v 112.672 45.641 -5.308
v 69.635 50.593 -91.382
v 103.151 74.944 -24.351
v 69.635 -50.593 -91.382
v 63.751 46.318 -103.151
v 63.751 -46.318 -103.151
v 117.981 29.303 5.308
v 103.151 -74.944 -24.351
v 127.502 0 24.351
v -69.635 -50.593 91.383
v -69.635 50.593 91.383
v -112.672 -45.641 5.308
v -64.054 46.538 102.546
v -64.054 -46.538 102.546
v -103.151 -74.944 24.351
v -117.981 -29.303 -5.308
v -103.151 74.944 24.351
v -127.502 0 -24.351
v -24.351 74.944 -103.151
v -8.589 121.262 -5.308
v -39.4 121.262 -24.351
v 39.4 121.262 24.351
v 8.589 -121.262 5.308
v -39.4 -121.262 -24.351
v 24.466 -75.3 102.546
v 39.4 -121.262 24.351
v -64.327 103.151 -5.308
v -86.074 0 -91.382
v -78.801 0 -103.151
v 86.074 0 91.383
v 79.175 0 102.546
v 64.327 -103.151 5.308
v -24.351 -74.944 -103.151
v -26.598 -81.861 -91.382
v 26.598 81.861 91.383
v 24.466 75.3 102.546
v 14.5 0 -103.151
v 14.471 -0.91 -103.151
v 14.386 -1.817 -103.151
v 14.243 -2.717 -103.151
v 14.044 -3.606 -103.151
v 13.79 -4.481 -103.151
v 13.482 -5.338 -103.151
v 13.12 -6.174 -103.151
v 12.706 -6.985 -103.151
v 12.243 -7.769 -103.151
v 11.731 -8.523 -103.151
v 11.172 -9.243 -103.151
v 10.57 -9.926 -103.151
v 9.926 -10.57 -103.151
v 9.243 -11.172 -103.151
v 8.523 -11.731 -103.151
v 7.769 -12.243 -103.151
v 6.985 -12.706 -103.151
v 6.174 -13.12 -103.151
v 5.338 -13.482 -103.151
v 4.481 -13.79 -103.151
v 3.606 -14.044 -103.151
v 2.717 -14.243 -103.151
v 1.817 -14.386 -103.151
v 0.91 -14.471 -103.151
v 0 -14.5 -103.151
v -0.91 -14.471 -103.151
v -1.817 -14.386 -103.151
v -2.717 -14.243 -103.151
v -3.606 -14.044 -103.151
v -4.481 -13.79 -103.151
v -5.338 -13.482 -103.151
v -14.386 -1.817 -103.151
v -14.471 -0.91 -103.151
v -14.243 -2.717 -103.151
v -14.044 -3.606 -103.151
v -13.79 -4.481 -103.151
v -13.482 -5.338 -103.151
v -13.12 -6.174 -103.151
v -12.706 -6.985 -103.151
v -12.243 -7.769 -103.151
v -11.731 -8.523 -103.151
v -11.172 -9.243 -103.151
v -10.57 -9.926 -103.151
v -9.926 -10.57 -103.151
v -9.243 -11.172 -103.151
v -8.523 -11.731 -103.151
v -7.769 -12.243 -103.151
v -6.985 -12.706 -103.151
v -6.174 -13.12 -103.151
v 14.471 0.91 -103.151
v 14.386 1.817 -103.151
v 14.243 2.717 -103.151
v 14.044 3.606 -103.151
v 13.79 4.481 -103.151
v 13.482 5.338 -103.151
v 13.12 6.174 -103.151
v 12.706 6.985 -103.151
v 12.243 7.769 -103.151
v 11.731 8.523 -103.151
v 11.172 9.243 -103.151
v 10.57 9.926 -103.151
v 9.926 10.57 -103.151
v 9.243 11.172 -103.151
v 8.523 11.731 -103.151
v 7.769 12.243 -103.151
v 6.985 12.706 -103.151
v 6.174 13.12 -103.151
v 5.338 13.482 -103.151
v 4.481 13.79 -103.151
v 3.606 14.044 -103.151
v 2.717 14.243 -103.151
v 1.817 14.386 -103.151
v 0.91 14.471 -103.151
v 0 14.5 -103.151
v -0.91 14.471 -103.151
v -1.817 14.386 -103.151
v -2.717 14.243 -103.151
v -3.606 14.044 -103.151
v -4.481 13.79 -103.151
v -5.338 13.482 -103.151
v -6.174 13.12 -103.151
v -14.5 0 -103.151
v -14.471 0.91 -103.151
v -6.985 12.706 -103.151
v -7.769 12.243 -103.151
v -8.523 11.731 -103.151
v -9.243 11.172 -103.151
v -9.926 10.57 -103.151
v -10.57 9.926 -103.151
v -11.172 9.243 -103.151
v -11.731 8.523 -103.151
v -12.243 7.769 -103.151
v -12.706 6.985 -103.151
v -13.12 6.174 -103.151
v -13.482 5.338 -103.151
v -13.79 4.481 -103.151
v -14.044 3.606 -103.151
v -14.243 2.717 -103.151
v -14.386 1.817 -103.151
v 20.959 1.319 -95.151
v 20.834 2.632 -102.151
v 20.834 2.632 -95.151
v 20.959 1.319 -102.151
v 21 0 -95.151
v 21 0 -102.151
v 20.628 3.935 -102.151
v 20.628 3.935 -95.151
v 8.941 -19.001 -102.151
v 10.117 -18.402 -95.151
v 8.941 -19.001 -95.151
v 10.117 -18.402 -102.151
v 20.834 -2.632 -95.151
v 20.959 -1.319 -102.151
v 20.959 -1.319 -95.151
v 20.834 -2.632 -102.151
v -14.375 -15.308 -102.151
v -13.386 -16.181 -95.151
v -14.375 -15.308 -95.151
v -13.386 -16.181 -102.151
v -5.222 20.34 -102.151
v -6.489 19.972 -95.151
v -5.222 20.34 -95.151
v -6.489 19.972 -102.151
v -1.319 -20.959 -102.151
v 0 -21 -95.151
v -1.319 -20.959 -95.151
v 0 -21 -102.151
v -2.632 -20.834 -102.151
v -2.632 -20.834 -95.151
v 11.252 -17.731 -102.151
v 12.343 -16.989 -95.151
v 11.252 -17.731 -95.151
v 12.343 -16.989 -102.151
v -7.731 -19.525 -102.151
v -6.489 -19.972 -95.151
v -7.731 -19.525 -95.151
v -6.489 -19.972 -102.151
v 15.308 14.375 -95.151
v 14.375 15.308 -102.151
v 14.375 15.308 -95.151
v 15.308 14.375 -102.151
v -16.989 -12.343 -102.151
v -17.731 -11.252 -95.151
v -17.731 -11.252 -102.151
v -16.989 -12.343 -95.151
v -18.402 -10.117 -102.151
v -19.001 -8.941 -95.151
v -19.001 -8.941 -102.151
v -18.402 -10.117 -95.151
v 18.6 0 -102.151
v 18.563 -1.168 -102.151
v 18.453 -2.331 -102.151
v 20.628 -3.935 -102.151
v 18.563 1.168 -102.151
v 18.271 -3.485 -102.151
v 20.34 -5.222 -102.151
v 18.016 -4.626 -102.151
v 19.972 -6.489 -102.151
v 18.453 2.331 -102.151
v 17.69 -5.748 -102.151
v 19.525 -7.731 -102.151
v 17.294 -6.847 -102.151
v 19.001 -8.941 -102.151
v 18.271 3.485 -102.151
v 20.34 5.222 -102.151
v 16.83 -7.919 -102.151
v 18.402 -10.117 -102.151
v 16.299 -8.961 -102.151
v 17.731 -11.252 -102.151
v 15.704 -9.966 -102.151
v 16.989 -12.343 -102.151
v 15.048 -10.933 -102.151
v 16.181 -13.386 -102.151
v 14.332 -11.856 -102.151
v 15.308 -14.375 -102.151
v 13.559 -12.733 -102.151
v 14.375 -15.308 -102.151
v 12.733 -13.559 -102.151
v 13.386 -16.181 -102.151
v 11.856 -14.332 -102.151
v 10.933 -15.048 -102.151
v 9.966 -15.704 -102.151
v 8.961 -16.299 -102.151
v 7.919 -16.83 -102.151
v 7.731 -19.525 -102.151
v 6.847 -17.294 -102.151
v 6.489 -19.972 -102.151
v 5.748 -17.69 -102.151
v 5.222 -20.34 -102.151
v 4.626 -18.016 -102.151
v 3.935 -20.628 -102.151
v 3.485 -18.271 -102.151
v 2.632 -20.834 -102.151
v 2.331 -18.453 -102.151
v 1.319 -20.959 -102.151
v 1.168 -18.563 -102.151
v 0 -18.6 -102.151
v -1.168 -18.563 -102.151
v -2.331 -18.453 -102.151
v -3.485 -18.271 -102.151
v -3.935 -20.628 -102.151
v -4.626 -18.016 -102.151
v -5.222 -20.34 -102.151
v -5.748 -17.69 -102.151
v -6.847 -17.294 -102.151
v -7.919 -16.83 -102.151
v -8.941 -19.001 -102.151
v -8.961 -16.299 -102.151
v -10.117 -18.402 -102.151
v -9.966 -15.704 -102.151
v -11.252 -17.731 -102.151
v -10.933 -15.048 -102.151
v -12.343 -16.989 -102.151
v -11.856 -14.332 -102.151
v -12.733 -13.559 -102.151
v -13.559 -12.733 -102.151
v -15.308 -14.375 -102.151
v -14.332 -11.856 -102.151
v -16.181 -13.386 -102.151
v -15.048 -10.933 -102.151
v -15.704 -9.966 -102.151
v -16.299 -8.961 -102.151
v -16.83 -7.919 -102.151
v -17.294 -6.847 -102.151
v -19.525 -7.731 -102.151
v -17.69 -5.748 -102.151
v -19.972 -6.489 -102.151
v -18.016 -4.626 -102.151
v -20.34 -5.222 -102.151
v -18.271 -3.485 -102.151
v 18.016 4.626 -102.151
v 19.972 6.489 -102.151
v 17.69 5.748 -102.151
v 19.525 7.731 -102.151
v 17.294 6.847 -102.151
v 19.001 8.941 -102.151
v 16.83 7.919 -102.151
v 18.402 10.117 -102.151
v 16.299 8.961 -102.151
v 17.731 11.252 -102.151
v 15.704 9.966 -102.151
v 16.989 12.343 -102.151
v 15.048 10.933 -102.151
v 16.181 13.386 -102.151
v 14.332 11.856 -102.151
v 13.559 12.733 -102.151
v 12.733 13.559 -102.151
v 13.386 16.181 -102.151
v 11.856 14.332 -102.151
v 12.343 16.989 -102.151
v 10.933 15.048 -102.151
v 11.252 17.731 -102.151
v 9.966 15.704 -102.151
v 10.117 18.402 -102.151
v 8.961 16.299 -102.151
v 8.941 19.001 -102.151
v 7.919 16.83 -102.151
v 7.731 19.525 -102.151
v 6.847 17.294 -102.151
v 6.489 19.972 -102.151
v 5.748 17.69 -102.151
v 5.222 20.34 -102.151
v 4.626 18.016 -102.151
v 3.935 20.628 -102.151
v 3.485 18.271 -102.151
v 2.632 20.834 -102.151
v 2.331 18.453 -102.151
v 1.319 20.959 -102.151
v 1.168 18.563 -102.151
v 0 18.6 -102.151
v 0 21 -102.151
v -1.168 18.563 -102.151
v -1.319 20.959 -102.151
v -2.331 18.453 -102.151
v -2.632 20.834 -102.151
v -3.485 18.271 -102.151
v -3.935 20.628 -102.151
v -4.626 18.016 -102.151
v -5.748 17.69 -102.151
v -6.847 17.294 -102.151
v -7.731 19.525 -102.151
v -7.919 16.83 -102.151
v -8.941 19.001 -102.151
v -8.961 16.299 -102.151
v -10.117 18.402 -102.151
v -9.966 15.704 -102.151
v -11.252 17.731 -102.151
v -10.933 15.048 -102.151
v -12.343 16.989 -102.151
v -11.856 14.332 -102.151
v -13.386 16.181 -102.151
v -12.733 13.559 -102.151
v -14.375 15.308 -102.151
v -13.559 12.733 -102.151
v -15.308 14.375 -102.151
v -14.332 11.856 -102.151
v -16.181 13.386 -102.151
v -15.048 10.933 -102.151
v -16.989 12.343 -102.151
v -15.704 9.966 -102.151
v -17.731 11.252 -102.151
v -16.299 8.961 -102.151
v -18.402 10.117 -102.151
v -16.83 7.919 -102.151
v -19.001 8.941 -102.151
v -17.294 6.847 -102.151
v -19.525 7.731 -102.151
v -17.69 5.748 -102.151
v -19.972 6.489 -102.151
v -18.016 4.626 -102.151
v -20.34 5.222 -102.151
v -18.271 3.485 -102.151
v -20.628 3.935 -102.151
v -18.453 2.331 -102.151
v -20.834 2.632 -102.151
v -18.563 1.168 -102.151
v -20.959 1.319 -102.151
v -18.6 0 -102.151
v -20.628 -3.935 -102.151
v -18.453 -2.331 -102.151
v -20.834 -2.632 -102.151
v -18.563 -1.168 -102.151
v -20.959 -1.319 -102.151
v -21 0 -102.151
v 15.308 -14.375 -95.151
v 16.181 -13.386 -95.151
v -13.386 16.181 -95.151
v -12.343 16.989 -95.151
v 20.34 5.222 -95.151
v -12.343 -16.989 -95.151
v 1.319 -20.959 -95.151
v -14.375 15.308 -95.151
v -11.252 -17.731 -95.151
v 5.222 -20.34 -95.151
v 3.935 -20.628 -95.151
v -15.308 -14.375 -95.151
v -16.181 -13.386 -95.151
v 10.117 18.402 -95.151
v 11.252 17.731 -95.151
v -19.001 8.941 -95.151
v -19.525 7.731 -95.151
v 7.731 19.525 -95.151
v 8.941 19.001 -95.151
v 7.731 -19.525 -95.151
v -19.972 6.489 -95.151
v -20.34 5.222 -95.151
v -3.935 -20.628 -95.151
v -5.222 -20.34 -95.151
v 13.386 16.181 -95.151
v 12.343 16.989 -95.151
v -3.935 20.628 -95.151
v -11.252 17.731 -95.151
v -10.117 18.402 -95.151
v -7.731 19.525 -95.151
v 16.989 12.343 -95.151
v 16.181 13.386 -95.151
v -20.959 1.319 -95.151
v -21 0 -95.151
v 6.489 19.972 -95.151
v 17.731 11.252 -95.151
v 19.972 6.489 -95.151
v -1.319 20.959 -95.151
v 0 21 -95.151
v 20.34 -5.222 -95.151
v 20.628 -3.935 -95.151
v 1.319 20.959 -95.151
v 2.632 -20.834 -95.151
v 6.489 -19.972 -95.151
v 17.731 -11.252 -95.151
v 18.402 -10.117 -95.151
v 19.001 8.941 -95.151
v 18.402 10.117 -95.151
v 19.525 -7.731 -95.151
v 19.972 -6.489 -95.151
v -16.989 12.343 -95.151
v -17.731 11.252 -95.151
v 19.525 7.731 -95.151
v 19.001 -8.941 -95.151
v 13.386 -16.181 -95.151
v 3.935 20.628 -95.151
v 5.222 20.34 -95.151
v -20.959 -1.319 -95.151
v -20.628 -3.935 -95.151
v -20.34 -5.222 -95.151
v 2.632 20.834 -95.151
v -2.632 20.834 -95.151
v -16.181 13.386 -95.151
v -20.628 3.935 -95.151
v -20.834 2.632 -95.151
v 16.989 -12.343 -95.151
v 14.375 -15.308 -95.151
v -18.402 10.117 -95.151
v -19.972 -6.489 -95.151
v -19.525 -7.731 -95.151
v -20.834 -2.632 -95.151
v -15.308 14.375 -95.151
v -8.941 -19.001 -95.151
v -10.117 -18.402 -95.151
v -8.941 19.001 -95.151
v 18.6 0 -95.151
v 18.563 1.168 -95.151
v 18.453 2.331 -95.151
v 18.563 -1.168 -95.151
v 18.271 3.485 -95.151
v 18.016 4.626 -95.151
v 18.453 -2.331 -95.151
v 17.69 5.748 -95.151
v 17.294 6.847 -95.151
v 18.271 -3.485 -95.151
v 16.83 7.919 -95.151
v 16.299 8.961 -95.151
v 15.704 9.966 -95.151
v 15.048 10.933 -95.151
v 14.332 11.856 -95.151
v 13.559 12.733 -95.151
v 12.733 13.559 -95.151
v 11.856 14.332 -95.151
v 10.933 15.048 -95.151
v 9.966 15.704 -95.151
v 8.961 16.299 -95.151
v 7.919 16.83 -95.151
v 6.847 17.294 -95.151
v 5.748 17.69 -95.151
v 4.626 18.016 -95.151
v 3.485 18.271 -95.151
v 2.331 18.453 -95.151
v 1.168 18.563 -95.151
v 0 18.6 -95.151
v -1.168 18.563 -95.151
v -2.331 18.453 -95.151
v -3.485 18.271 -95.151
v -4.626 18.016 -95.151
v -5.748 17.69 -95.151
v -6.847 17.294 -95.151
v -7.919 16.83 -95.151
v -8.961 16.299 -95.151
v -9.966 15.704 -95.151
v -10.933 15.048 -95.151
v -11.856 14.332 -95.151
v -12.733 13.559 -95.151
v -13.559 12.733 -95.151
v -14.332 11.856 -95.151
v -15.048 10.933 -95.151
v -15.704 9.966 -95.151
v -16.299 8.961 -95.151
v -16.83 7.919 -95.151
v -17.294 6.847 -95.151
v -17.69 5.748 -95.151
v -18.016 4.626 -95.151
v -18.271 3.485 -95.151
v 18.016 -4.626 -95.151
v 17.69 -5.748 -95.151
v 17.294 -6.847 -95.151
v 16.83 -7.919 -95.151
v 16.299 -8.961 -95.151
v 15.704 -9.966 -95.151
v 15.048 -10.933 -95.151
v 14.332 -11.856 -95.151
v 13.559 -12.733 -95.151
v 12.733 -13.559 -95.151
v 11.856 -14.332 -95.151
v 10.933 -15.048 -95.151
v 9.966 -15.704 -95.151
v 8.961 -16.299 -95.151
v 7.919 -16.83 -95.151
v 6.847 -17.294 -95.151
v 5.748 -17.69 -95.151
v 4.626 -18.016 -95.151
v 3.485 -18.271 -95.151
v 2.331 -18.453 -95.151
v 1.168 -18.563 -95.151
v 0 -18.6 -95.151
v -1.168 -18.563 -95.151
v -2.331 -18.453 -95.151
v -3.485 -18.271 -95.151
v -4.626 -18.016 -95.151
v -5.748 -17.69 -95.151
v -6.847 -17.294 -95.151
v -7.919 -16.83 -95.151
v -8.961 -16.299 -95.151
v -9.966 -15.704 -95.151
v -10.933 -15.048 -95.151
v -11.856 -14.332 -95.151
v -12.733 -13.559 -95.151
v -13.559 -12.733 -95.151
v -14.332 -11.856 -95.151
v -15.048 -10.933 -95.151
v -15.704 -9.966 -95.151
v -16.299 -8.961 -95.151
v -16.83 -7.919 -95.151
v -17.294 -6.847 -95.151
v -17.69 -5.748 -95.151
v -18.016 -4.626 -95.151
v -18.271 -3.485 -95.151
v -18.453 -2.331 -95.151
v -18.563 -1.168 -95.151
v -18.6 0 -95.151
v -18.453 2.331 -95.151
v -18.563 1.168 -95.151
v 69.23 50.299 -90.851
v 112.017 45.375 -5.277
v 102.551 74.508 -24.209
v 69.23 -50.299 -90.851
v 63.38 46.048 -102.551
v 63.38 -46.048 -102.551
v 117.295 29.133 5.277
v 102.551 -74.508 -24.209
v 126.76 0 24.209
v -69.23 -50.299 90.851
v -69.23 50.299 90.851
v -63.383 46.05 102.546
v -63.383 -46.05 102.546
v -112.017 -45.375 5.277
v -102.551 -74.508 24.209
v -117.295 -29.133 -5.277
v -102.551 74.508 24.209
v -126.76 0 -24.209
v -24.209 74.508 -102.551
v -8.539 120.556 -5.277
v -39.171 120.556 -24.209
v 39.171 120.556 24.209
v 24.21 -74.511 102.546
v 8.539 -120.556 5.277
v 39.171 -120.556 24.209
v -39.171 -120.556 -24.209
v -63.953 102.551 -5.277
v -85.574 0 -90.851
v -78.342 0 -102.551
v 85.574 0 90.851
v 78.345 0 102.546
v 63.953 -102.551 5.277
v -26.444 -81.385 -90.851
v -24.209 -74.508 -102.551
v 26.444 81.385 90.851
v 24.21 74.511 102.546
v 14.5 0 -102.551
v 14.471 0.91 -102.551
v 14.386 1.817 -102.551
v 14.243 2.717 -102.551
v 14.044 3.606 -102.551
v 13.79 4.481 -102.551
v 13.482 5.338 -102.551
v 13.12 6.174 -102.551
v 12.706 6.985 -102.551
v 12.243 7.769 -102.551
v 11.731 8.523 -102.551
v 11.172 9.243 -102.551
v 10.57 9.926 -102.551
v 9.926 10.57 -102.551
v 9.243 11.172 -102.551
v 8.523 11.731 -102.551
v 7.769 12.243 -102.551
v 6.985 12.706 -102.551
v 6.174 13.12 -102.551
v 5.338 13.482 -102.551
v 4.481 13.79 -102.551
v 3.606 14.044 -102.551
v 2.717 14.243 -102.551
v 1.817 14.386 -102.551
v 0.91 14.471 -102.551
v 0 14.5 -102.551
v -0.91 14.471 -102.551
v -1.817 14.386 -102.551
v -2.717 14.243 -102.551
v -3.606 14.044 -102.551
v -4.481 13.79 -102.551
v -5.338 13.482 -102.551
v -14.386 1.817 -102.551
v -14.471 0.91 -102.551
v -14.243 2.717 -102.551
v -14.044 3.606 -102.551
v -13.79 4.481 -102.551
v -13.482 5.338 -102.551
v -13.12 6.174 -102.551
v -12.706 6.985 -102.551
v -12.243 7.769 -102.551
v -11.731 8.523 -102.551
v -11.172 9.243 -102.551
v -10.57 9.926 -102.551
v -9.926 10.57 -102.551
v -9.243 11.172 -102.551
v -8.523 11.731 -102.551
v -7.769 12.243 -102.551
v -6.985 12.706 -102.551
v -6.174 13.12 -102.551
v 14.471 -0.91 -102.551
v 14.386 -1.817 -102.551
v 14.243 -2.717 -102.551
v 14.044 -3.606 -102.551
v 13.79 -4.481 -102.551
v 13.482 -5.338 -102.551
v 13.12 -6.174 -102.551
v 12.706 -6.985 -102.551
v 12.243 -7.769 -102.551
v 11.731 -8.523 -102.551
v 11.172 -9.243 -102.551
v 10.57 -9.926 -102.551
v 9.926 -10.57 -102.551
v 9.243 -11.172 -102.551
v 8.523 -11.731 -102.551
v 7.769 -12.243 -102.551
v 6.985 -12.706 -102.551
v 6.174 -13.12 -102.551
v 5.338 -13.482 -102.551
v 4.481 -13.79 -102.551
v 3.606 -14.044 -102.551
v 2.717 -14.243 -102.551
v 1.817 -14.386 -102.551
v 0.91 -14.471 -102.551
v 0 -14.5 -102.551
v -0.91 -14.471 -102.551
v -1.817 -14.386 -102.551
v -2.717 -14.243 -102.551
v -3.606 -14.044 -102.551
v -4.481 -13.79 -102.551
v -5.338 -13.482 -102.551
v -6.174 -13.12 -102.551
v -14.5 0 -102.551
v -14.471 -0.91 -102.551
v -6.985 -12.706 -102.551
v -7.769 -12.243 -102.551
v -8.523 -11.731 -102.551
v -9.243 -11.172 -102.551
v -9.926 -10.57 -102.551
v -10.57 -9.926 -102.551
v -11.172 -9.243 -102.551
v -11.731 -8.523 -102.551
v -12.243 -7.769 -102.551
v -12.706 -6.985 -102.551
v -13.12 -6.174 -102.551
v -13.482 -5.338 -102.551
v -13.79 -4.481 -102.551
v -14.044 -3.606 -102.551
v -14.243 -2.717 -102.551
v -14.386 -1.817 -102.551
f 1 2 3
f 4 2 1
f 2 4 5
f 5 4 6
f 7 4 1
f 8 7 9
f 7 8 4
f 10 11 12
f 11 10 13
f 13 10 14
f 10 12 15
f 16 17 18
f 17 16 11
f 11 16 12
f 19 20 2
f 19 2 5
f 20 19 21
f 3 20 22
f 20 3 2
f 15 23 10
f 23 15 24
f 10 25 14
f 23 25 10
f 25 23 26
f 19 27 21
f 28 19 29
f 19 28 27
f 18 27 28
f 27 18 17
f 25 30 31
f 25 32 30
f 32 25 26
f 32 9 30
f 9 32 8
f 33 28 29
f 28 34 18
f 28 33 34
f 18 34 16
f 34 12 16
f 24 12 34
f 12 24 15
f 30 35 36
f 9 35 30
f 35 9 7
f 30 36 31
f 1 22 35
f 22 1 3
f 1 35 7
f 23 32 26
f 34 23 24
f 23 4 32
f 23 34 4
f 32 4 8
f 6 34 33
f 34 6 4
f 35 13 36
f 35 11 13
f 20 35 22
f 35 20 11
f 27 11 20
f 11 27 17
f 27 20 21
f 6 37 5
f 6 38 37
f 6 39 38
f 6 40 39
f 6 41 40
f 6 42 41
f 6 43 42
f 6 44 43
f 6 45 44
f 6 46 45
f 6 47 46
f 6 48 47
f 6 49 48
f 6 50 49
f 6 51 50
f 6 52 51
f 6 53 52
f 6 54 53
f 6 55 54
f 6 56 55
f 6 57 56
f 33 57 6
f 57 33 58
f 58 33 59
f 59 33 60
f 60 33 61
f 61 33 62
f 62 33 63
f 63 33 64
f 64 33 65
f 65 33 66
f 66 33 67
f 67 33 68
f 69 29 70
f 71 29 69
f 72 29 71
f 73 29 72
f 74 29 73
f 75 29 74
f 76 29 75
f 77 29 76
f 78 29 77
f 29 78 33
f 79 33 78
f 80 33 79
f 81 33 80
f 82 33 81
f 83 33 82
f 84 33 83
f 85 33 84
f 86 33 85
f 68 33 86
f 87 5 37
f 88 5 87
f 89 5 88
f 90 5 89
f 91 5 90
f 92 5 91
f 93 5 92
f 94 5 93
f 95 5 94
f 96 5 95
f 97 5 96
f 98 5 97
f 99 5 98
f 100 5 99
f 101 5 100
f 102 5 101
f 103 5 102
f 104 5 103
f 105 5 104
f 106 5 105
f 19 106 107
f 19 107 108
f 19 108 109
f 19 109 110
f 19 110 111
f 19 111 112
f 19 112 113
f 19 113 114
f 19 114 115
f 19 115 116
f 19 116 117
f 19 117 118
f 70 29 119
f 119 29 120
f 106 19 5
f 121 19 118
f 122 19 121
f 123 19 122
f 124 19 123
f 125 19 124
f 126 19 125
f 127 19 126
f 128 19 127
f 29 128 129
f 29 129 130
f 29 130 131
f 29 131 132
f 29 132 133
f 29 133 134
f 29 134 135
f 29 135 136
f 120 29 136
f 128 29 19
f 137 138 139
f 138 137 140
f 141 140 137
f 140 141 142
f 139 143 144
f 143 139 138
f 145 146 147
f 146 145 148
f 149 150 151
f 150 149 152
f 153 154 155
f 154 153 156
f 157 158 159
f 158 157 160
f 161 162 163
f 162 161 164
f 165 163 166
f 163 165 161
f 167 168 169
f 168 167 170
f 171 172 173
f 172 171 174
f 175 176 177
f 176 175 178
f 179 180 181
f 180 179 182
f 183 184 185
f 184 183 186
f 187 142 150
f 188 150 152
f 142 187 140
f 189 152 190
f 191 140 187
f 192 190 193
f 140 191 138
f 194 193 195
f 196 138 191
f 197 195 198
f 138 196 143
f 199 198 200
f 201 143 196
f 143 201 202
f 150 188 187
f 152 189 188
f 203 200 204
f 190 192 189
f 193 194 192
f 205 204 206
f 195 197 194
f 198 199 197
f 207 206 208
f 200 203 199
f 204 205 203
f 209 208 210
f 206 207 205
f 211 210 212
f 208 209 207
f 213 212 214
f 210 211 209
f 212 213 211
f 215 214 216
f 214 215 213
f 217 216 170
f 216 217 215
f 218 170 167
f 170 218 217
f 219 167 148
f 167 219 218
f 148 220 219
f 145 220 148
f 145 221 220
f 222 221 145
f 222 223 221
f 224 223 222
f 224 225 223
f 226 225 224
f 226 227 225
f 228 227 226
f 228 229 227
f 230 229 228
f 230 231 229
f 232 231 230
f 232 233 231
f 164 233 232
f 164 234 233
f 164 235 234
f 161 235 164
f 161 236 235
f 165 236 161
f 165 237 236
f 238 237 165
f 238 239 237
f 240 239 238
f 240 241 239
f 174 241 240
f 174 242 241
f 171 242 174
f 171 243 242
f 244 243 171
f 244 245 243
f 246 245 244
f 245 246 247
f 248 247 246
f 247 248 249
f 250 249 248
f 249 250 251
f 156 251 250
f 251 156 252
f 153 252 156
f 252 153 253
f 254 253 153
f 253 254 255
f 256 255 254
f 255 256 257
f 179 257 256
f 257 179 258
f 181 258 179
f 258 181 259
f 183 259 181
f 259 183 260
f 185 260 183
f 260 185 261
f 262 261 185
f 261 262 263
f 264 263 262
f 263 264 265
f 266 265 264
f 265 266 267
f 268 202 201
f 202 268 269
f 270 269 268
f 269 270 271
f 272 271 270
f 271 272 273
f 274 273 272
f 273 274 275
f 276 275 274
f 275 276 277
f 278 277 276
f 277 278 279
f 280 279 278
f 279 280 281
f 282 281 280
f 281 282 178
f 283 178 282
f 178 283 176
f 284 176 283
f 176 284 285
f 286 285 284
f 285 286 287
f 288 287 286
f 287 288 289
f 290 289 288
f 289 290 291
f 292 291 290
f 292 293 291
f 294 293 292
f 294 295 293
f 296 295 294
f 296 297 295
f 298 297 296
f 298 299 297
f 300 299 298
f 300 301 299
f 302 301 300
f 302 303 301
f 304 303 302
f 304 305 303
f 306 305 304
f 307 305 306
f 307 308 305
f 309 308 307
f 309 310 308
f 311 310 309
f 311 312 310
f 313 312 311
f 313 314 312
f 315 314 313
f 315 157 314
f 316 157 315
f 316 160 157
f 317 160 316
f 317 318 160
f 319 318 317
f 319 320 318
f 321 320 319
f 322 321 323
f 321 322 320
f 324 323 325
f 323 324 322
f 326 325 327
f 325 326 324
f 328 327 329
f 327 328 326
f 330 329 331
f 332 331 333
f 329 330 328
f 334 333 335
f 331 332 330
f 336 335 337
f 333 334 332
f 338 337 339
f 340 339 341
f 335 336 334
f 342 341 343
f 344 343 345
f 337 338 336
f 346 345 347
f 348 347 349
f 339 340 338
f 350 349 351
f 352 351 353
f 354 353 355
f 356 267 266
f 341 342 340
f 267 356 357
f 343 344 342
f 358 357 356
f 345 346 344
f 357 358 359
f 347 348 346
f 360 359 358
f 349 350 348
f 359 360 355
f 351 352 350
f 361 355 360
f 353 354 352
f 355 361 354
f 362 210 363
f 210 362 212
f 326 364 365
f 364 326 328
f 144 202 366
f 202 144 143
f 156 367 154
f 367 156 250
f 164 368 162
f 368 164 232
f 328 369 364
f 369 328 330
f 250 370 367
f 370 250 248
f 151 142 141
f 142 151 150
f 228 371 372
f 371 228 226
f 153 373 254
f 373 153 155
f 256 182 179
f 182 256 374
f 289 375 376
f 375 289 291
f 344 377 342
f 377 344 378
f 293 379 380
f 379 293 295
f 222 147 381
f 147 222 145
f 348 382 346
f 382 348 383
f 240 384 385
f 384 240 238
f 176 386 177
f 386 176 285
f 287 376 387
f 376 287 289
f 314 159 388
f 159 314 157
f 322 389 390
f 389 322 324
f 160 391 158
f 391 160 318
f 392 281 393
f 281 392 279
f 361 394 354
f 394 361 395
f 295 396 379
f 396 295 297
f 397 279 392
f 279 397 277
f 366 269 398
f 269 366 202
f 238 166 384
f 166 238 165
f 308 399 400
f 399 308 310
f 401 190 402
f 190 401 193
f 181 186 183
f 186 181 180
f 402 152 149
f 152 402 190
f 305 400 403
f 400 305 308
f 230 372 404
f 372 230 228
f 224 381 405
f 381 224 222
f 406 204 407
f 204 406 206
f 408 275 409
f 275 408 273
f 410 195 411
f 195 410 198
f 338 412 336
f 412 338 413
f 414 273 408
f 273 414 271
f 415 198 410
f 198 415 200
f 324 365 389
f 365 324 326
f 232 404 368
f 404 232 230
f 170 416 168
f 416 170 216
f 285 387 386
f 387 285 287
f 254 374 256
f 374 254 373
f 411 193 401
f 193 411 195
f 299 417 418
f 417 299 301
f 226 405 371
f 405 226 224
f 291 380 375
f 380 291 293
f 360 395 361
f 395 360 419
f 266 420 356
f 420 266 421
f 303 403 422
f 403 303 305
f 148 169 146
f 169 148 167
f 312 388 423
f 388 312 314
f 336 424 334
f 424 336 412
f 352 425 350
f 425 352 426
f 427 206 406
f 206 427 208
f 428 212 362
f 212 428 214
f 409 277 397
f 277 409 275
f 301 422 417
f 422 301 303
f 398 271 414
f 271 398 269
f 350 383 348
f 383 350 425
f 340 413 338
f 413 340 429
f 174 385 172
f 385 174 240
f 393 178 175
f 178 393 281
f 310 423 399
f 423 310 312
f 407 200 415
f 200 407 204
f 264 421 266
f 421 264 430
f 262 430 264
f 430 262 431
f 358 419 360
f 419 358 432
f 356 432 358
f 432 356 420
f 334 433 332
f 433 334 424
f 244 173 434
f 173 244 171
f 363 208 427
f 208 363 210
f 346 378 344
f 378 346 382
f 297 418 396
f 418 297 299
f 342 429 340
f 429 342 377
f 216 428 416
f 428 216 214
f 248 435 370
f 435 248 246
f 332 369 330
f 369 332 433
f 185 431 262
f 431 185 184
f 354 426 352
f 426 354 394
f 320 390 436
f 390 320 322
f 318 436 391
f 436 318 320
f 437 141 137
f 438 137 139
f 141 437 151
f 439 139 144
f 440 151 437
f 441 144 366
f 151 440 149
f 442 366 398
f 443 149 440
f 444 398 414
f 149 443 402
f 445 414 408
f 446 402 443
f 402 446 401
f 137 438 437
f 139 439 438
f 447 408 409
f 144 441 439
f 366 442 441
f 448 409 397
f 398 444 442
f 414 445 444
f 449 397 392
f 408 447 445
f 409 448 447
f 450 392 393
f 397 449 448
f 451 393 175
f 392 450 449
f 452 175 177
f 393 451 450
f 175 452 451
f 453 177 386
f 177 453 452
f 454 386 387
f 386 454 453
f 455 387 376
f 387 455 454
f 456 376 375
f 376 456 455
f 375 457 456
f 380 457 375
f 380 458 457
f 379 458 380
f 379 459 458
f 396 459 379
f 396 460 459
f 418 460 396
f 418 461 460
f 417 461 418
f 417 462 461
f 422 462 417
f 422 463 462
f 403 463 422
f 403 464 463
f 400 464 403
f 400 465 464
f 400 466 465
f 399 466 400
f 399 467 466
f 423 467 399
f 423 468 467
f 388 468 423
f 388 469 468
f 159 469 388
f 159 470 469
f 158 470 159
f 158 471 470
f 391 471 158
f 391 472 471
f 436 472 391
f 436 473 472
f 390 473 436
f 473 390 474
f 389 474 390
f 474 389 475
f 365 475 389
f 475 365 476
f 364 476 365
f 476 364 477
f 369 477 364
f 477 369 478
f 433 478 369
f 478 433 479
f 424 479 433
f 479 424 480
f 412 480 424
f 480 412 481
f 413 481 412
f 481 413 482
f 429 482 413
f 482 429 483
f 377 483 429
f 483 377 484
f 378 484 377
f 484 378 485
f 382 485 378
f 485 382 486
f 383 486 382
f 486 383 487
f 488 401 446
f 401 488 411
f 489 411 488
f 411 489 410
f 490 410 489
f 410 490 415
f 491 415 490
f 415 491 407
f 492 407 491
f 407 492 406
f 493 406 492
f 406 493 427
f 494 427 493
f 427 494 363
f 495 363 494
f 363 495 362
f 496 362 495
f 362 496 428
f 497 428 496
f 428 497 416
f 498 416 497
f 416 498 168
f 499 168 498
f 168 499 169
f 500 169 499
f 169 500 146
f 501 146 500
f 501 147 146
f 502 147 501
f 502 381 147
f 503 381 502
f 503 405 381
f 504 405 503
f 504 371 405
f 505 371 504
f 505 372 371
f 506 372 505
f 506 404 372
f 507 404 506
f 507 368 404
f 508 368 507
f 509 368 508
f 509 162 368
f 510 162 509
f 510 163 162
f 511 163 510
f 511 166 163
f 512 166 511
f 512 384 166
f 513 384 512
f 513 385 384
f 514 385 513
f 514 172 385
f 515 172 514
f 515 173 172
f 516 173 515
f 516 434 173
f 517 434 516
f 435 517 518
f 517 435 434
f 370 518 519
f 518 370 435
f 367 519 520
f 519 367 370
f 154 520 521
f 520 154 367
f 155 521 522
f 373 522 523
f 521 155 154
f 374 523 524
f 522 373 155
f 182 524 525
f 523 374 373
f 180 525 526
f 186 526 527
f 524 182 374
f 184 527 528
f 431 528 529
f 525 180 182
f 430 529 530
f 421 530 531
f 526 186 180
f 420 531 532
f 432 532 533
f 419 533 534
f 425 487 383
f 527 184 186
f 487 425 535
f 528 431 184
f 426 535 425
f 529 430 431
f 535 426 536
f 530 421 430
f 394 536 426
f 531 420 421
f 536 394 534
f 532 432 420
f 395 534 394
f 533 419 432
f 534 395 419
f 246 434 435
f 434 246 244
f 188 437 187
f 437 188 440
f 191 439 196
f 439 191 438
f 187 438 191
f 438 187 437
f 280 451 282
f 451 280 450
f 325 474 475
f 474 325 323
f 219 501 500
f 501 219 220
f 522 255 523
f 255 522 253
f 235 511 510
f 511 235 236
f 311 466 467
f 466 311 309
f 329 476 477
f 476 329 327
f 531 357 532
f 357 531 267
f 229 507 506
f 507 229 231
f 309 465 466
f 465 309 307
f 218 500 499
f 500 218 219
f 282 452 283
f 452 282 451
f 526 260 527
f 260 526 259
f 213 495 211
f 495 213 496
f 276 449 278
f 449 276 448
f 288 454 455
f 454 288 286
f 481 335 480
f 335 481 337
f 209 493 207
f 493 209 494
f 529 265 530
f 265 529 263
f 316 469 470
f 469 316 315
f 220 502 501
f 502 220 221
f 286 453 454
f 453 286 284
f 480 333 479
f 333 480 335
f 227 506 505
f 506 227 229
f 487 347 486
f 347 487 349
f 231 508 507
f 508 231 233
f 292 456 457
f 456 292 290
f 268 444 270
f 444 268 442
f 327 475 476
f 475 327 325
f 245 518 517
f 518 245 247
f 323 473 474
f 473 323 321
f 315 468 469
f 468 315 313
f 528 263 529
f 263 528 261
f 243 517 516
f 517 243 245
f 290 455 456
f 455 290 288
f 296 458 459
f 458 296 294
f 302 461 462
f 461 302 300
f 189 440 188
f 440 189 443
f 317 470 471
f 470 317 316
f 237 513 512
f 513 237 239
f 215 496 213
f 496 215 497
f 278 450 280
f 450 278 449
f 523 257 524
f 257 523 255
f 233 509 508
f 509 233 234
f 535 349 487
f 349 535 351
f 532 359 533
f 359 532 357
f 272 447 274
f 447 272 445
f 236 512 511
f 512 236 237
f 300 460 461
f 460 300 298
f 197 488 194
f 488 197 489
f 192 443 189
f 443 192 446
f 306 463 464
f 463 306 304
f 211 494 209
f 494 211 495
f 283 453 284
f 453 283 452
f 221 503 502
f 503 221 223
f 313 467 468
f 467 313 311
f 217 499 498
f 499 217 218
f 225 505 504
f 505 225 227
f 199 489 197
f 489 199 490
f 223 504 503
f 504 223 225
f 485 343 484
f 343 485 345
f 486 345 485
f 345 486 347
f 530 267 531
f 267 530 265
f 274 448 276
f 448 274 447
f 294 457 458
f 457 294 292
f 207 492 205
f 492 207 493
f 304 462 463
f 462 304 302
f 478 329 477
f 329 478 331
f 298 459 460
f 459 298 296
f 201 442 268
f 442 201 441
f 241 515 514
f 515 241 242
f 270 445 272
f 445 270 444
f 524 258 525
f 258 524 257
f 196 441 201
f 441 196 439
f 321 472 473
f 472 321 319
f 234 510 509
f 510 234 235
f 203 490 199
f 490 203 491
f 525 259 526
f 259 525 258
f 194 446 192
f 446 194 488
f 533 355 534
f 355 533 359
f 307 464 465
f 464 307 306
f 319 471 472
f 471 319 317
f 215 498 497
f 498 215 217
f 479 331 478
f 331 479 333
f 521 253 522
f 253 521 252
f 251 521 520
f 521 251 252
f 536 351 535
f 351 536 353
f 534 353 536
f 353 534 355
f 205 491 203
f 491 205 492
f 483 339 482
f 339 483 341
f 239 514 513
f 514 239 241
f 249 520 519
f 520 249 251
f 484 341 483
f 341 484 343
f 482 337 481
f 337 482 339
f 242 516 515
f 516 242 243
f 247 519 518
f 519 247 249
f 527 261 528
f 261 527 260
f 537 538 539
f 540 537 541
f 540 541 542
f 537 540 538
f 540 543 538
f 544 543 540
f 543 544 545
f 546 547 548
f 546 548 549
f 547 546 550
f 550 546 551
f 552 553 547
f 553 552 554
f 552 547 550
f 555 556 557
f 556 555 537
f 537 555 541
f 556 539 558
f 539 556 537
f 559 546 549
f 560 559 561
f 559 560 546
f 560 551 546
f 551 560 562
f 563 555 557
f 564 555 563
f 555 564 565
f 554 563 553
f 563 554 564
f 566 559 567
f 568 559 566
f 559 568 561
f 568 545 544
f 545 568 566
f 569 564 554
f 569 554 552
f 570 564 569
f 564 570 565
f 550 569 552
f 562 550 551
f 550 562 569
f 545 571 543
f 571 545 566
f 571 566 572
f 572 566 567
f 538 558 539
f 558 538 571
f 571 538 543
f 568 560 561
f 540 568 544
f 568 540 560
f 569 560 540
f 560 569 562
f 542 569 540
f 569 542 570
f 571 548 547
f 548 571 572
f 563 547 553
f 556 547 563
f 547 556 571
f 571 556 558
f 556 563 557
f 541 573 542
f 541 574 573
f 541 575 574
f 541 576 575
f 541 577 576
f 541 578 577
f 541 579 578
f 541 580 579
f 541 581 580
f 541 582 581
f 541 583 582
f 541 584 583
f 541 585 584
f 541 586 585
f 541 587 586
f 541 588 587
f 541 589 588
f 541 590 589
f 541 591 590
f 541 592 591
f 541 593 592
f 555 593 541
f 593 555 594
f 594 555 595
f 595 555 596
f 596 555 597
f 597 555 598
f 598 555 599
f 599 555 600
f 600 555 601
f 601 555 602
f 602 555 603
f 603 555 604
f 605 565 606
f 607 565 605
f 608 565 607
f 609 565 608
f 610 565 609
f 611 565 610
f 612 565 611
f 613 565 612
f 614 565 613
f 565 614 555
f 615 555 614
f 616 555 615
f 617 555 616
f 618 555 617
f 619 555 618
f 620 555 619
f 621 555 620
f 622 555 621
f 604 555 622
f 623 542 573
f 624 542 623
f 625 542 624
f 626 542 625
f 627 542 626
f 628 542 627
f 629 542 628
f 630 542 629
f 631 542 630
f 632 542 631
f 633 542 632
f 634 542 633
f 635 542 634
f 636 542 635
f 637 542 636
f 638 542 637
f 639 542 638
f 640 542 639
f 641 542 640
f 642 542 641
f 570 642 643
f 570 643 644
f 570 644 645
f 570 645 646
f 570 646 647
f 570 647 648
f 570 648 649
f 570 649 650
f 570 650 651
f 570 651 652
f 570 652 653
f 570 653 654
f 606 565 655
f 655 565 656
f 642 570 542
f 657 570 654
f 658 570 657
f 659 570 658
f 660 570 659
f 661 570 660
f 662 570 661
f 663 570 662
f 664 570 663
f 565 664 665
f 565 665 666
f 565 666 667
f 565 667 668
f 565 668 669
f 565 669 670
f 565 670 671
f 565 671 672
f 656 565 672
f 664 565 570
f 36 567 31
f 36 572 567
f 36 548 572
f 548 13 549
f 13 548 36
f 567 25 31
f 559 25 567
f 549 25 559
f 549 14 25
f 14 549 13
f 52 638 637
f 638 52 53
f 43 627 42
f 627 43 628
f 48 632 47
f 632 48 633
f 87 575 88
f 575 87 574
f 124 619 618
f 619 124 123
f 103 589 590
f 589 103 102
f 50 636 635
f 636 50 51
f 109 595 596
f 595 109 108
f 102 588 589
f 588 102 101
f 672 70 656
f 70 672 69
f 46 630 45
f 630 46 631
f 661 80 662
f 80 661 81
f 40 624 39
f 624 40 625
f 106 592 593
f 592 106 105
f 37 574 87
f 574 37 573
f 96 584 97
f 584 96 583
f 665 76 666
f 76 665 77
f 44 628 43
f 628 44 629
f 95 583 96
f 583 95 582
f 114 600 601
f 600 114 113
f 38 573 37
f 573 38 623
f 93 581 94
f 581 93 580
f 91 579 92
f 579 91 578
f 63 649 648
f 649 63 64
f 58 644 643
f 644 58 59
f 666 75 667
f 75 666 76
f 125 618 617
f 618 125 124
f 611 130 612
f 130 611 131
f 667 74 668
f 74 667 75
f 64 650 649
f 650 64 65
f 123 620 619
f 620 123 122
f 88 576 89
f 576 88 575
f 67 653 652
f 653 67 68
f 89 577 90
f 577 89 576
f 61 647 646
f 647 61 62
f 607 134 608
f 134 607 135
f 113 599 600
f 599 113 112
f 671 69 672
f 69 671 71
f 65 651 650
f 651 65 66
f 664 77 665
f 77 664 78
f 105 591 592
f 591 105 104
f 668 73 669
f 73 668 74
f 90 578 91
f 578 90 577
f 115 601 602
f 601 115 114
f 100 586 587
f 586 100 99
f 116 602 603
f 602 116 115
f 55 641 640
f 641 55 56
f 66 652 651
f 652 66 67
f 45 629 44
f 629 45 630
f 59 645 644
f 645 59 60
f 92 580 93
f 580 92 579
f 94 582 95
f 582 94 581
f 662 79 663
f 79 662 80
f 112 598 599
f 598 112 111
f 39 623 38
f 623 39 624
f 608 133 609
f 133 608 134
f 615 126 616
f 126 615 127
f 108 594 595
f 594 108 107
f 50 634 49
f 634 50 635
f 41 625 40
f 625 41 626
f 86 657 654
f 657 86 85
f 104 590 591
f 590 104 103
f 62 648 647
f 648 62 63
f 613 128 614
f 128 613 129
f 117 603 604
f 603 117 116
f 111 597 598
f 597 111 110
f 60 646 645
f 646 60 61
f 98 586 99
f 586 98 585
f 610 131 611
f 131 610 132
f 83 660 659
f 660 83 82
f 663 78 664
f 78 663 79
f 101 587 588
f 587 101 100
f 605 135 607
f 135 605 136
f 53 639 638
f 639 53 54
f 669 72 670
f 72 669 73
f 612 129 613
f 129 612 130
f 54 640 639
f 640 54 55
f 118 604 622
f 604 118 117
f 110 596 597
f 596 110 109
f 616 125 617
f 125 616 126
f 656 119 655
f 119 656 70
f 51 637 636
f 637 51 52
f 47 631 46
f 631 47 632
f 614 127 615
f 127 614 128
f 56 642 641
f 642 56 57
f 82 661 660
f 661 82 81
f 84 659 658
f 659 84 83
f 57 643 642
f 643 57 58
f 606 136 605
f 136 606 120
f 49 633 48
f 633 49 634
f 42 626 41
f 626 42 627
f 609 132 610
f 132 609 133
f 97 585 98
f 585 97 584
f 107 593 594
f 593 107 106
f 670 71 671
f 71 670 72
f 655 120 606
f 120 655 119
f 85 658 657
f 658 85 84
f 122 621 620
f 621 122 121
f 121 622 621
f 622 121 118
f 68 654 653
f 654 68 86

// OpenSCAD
$fn = $preview ? 35 : 100;
EPSILON = 0.01;

WALL_THICKNESS = 0.6;
SHADE_WIDTH = 255;

// Calculate SHADE_HEIGHT from max width,
// so that the max width is always 256 on all sides
// Ratio = z: 217.77, y:269.17, x: 256
// Make sure y is 256
SHADE_HEIGHT = SHADE_WIDTH / 2 / sin(180 / 5) * (256 / 269.17);

DISC_HEIGHT = 2;
DISC_DIAMETER = 64;
DISC_HOLE_DIAMETER = 29;
TOP_RING_DIAMETER = 42;
TOP_RING_HEIGHT = 7;
TOP_RING_WIDTH = 1.2;
TOTAL_HEIGHT = DISC_HEIGHT + TOP_RING_HEIGHT;

module box(size) { cube([ 2 * size, 2 * size, size ], center = true); }

module dodecahedron(size) {
  rotate([ 0, 0, 90 / 5 ]) {
    dihedral = 116.565;
    intersection() {
      box(size);
      intersection_for(i = [1:5]) {
        rotate([ dihedral, 0, 360 / 5 * i ]) box(size);
      }
    }
  }
}

difference() {
  dodecahedron(SHADE_HEIGHT);
  dodecahedron(SHADE_HEIGHT - WALL_THICKNESS * 2);
  translate([ 0, 0, SHADE_HEIGHT / 2 ])
      cube([ 256, 256, WALL_THICKNESS * 2 + EPSILON ], center = true);

  // cylinder(h = SHADE_HEIGHT * 2, r = 20, center = true);

  translate([ 0, 0, -SHADE_HEIGHT / 2 ]) difference() {
    cylinder(h = TOTAL_HEIGHT * 2, r = DISC_HOLE_DIAMETER / 2, center = true);
  }
}

translate([ 0, 0, -SHADE_HEIGHT / 2 ]) difference() {
  union() {
    // cylinder(h = DISC_HEIGHT, r = DISC_DIAMETER / 2, center = true);
    difference() {
      translate([ 0, 0, (DISC_HEIGHT + TOP_RING_HEIGHT) / 2 ]) cylinder(
          h = TOP_RING_HEIGHT, r = TOP_RING_DIAMETER / 2, center = true);
      translate([ 0, 0, (DISC_HEIGHT + TOP_RING_HEIGHT) / 2 ]) cylinder(
          h = TOP_RING_HEIGHT + EPSILON,
          r = TOP_RING_DIAMETER / 2 - (TOP_RING_WIDTH * 2), center = true);
    }
  }
  cylinder(h = TOTAL_HEIGHT * 2, r = DISC_HOLE_DIAMETER / 2, center = true);
}
